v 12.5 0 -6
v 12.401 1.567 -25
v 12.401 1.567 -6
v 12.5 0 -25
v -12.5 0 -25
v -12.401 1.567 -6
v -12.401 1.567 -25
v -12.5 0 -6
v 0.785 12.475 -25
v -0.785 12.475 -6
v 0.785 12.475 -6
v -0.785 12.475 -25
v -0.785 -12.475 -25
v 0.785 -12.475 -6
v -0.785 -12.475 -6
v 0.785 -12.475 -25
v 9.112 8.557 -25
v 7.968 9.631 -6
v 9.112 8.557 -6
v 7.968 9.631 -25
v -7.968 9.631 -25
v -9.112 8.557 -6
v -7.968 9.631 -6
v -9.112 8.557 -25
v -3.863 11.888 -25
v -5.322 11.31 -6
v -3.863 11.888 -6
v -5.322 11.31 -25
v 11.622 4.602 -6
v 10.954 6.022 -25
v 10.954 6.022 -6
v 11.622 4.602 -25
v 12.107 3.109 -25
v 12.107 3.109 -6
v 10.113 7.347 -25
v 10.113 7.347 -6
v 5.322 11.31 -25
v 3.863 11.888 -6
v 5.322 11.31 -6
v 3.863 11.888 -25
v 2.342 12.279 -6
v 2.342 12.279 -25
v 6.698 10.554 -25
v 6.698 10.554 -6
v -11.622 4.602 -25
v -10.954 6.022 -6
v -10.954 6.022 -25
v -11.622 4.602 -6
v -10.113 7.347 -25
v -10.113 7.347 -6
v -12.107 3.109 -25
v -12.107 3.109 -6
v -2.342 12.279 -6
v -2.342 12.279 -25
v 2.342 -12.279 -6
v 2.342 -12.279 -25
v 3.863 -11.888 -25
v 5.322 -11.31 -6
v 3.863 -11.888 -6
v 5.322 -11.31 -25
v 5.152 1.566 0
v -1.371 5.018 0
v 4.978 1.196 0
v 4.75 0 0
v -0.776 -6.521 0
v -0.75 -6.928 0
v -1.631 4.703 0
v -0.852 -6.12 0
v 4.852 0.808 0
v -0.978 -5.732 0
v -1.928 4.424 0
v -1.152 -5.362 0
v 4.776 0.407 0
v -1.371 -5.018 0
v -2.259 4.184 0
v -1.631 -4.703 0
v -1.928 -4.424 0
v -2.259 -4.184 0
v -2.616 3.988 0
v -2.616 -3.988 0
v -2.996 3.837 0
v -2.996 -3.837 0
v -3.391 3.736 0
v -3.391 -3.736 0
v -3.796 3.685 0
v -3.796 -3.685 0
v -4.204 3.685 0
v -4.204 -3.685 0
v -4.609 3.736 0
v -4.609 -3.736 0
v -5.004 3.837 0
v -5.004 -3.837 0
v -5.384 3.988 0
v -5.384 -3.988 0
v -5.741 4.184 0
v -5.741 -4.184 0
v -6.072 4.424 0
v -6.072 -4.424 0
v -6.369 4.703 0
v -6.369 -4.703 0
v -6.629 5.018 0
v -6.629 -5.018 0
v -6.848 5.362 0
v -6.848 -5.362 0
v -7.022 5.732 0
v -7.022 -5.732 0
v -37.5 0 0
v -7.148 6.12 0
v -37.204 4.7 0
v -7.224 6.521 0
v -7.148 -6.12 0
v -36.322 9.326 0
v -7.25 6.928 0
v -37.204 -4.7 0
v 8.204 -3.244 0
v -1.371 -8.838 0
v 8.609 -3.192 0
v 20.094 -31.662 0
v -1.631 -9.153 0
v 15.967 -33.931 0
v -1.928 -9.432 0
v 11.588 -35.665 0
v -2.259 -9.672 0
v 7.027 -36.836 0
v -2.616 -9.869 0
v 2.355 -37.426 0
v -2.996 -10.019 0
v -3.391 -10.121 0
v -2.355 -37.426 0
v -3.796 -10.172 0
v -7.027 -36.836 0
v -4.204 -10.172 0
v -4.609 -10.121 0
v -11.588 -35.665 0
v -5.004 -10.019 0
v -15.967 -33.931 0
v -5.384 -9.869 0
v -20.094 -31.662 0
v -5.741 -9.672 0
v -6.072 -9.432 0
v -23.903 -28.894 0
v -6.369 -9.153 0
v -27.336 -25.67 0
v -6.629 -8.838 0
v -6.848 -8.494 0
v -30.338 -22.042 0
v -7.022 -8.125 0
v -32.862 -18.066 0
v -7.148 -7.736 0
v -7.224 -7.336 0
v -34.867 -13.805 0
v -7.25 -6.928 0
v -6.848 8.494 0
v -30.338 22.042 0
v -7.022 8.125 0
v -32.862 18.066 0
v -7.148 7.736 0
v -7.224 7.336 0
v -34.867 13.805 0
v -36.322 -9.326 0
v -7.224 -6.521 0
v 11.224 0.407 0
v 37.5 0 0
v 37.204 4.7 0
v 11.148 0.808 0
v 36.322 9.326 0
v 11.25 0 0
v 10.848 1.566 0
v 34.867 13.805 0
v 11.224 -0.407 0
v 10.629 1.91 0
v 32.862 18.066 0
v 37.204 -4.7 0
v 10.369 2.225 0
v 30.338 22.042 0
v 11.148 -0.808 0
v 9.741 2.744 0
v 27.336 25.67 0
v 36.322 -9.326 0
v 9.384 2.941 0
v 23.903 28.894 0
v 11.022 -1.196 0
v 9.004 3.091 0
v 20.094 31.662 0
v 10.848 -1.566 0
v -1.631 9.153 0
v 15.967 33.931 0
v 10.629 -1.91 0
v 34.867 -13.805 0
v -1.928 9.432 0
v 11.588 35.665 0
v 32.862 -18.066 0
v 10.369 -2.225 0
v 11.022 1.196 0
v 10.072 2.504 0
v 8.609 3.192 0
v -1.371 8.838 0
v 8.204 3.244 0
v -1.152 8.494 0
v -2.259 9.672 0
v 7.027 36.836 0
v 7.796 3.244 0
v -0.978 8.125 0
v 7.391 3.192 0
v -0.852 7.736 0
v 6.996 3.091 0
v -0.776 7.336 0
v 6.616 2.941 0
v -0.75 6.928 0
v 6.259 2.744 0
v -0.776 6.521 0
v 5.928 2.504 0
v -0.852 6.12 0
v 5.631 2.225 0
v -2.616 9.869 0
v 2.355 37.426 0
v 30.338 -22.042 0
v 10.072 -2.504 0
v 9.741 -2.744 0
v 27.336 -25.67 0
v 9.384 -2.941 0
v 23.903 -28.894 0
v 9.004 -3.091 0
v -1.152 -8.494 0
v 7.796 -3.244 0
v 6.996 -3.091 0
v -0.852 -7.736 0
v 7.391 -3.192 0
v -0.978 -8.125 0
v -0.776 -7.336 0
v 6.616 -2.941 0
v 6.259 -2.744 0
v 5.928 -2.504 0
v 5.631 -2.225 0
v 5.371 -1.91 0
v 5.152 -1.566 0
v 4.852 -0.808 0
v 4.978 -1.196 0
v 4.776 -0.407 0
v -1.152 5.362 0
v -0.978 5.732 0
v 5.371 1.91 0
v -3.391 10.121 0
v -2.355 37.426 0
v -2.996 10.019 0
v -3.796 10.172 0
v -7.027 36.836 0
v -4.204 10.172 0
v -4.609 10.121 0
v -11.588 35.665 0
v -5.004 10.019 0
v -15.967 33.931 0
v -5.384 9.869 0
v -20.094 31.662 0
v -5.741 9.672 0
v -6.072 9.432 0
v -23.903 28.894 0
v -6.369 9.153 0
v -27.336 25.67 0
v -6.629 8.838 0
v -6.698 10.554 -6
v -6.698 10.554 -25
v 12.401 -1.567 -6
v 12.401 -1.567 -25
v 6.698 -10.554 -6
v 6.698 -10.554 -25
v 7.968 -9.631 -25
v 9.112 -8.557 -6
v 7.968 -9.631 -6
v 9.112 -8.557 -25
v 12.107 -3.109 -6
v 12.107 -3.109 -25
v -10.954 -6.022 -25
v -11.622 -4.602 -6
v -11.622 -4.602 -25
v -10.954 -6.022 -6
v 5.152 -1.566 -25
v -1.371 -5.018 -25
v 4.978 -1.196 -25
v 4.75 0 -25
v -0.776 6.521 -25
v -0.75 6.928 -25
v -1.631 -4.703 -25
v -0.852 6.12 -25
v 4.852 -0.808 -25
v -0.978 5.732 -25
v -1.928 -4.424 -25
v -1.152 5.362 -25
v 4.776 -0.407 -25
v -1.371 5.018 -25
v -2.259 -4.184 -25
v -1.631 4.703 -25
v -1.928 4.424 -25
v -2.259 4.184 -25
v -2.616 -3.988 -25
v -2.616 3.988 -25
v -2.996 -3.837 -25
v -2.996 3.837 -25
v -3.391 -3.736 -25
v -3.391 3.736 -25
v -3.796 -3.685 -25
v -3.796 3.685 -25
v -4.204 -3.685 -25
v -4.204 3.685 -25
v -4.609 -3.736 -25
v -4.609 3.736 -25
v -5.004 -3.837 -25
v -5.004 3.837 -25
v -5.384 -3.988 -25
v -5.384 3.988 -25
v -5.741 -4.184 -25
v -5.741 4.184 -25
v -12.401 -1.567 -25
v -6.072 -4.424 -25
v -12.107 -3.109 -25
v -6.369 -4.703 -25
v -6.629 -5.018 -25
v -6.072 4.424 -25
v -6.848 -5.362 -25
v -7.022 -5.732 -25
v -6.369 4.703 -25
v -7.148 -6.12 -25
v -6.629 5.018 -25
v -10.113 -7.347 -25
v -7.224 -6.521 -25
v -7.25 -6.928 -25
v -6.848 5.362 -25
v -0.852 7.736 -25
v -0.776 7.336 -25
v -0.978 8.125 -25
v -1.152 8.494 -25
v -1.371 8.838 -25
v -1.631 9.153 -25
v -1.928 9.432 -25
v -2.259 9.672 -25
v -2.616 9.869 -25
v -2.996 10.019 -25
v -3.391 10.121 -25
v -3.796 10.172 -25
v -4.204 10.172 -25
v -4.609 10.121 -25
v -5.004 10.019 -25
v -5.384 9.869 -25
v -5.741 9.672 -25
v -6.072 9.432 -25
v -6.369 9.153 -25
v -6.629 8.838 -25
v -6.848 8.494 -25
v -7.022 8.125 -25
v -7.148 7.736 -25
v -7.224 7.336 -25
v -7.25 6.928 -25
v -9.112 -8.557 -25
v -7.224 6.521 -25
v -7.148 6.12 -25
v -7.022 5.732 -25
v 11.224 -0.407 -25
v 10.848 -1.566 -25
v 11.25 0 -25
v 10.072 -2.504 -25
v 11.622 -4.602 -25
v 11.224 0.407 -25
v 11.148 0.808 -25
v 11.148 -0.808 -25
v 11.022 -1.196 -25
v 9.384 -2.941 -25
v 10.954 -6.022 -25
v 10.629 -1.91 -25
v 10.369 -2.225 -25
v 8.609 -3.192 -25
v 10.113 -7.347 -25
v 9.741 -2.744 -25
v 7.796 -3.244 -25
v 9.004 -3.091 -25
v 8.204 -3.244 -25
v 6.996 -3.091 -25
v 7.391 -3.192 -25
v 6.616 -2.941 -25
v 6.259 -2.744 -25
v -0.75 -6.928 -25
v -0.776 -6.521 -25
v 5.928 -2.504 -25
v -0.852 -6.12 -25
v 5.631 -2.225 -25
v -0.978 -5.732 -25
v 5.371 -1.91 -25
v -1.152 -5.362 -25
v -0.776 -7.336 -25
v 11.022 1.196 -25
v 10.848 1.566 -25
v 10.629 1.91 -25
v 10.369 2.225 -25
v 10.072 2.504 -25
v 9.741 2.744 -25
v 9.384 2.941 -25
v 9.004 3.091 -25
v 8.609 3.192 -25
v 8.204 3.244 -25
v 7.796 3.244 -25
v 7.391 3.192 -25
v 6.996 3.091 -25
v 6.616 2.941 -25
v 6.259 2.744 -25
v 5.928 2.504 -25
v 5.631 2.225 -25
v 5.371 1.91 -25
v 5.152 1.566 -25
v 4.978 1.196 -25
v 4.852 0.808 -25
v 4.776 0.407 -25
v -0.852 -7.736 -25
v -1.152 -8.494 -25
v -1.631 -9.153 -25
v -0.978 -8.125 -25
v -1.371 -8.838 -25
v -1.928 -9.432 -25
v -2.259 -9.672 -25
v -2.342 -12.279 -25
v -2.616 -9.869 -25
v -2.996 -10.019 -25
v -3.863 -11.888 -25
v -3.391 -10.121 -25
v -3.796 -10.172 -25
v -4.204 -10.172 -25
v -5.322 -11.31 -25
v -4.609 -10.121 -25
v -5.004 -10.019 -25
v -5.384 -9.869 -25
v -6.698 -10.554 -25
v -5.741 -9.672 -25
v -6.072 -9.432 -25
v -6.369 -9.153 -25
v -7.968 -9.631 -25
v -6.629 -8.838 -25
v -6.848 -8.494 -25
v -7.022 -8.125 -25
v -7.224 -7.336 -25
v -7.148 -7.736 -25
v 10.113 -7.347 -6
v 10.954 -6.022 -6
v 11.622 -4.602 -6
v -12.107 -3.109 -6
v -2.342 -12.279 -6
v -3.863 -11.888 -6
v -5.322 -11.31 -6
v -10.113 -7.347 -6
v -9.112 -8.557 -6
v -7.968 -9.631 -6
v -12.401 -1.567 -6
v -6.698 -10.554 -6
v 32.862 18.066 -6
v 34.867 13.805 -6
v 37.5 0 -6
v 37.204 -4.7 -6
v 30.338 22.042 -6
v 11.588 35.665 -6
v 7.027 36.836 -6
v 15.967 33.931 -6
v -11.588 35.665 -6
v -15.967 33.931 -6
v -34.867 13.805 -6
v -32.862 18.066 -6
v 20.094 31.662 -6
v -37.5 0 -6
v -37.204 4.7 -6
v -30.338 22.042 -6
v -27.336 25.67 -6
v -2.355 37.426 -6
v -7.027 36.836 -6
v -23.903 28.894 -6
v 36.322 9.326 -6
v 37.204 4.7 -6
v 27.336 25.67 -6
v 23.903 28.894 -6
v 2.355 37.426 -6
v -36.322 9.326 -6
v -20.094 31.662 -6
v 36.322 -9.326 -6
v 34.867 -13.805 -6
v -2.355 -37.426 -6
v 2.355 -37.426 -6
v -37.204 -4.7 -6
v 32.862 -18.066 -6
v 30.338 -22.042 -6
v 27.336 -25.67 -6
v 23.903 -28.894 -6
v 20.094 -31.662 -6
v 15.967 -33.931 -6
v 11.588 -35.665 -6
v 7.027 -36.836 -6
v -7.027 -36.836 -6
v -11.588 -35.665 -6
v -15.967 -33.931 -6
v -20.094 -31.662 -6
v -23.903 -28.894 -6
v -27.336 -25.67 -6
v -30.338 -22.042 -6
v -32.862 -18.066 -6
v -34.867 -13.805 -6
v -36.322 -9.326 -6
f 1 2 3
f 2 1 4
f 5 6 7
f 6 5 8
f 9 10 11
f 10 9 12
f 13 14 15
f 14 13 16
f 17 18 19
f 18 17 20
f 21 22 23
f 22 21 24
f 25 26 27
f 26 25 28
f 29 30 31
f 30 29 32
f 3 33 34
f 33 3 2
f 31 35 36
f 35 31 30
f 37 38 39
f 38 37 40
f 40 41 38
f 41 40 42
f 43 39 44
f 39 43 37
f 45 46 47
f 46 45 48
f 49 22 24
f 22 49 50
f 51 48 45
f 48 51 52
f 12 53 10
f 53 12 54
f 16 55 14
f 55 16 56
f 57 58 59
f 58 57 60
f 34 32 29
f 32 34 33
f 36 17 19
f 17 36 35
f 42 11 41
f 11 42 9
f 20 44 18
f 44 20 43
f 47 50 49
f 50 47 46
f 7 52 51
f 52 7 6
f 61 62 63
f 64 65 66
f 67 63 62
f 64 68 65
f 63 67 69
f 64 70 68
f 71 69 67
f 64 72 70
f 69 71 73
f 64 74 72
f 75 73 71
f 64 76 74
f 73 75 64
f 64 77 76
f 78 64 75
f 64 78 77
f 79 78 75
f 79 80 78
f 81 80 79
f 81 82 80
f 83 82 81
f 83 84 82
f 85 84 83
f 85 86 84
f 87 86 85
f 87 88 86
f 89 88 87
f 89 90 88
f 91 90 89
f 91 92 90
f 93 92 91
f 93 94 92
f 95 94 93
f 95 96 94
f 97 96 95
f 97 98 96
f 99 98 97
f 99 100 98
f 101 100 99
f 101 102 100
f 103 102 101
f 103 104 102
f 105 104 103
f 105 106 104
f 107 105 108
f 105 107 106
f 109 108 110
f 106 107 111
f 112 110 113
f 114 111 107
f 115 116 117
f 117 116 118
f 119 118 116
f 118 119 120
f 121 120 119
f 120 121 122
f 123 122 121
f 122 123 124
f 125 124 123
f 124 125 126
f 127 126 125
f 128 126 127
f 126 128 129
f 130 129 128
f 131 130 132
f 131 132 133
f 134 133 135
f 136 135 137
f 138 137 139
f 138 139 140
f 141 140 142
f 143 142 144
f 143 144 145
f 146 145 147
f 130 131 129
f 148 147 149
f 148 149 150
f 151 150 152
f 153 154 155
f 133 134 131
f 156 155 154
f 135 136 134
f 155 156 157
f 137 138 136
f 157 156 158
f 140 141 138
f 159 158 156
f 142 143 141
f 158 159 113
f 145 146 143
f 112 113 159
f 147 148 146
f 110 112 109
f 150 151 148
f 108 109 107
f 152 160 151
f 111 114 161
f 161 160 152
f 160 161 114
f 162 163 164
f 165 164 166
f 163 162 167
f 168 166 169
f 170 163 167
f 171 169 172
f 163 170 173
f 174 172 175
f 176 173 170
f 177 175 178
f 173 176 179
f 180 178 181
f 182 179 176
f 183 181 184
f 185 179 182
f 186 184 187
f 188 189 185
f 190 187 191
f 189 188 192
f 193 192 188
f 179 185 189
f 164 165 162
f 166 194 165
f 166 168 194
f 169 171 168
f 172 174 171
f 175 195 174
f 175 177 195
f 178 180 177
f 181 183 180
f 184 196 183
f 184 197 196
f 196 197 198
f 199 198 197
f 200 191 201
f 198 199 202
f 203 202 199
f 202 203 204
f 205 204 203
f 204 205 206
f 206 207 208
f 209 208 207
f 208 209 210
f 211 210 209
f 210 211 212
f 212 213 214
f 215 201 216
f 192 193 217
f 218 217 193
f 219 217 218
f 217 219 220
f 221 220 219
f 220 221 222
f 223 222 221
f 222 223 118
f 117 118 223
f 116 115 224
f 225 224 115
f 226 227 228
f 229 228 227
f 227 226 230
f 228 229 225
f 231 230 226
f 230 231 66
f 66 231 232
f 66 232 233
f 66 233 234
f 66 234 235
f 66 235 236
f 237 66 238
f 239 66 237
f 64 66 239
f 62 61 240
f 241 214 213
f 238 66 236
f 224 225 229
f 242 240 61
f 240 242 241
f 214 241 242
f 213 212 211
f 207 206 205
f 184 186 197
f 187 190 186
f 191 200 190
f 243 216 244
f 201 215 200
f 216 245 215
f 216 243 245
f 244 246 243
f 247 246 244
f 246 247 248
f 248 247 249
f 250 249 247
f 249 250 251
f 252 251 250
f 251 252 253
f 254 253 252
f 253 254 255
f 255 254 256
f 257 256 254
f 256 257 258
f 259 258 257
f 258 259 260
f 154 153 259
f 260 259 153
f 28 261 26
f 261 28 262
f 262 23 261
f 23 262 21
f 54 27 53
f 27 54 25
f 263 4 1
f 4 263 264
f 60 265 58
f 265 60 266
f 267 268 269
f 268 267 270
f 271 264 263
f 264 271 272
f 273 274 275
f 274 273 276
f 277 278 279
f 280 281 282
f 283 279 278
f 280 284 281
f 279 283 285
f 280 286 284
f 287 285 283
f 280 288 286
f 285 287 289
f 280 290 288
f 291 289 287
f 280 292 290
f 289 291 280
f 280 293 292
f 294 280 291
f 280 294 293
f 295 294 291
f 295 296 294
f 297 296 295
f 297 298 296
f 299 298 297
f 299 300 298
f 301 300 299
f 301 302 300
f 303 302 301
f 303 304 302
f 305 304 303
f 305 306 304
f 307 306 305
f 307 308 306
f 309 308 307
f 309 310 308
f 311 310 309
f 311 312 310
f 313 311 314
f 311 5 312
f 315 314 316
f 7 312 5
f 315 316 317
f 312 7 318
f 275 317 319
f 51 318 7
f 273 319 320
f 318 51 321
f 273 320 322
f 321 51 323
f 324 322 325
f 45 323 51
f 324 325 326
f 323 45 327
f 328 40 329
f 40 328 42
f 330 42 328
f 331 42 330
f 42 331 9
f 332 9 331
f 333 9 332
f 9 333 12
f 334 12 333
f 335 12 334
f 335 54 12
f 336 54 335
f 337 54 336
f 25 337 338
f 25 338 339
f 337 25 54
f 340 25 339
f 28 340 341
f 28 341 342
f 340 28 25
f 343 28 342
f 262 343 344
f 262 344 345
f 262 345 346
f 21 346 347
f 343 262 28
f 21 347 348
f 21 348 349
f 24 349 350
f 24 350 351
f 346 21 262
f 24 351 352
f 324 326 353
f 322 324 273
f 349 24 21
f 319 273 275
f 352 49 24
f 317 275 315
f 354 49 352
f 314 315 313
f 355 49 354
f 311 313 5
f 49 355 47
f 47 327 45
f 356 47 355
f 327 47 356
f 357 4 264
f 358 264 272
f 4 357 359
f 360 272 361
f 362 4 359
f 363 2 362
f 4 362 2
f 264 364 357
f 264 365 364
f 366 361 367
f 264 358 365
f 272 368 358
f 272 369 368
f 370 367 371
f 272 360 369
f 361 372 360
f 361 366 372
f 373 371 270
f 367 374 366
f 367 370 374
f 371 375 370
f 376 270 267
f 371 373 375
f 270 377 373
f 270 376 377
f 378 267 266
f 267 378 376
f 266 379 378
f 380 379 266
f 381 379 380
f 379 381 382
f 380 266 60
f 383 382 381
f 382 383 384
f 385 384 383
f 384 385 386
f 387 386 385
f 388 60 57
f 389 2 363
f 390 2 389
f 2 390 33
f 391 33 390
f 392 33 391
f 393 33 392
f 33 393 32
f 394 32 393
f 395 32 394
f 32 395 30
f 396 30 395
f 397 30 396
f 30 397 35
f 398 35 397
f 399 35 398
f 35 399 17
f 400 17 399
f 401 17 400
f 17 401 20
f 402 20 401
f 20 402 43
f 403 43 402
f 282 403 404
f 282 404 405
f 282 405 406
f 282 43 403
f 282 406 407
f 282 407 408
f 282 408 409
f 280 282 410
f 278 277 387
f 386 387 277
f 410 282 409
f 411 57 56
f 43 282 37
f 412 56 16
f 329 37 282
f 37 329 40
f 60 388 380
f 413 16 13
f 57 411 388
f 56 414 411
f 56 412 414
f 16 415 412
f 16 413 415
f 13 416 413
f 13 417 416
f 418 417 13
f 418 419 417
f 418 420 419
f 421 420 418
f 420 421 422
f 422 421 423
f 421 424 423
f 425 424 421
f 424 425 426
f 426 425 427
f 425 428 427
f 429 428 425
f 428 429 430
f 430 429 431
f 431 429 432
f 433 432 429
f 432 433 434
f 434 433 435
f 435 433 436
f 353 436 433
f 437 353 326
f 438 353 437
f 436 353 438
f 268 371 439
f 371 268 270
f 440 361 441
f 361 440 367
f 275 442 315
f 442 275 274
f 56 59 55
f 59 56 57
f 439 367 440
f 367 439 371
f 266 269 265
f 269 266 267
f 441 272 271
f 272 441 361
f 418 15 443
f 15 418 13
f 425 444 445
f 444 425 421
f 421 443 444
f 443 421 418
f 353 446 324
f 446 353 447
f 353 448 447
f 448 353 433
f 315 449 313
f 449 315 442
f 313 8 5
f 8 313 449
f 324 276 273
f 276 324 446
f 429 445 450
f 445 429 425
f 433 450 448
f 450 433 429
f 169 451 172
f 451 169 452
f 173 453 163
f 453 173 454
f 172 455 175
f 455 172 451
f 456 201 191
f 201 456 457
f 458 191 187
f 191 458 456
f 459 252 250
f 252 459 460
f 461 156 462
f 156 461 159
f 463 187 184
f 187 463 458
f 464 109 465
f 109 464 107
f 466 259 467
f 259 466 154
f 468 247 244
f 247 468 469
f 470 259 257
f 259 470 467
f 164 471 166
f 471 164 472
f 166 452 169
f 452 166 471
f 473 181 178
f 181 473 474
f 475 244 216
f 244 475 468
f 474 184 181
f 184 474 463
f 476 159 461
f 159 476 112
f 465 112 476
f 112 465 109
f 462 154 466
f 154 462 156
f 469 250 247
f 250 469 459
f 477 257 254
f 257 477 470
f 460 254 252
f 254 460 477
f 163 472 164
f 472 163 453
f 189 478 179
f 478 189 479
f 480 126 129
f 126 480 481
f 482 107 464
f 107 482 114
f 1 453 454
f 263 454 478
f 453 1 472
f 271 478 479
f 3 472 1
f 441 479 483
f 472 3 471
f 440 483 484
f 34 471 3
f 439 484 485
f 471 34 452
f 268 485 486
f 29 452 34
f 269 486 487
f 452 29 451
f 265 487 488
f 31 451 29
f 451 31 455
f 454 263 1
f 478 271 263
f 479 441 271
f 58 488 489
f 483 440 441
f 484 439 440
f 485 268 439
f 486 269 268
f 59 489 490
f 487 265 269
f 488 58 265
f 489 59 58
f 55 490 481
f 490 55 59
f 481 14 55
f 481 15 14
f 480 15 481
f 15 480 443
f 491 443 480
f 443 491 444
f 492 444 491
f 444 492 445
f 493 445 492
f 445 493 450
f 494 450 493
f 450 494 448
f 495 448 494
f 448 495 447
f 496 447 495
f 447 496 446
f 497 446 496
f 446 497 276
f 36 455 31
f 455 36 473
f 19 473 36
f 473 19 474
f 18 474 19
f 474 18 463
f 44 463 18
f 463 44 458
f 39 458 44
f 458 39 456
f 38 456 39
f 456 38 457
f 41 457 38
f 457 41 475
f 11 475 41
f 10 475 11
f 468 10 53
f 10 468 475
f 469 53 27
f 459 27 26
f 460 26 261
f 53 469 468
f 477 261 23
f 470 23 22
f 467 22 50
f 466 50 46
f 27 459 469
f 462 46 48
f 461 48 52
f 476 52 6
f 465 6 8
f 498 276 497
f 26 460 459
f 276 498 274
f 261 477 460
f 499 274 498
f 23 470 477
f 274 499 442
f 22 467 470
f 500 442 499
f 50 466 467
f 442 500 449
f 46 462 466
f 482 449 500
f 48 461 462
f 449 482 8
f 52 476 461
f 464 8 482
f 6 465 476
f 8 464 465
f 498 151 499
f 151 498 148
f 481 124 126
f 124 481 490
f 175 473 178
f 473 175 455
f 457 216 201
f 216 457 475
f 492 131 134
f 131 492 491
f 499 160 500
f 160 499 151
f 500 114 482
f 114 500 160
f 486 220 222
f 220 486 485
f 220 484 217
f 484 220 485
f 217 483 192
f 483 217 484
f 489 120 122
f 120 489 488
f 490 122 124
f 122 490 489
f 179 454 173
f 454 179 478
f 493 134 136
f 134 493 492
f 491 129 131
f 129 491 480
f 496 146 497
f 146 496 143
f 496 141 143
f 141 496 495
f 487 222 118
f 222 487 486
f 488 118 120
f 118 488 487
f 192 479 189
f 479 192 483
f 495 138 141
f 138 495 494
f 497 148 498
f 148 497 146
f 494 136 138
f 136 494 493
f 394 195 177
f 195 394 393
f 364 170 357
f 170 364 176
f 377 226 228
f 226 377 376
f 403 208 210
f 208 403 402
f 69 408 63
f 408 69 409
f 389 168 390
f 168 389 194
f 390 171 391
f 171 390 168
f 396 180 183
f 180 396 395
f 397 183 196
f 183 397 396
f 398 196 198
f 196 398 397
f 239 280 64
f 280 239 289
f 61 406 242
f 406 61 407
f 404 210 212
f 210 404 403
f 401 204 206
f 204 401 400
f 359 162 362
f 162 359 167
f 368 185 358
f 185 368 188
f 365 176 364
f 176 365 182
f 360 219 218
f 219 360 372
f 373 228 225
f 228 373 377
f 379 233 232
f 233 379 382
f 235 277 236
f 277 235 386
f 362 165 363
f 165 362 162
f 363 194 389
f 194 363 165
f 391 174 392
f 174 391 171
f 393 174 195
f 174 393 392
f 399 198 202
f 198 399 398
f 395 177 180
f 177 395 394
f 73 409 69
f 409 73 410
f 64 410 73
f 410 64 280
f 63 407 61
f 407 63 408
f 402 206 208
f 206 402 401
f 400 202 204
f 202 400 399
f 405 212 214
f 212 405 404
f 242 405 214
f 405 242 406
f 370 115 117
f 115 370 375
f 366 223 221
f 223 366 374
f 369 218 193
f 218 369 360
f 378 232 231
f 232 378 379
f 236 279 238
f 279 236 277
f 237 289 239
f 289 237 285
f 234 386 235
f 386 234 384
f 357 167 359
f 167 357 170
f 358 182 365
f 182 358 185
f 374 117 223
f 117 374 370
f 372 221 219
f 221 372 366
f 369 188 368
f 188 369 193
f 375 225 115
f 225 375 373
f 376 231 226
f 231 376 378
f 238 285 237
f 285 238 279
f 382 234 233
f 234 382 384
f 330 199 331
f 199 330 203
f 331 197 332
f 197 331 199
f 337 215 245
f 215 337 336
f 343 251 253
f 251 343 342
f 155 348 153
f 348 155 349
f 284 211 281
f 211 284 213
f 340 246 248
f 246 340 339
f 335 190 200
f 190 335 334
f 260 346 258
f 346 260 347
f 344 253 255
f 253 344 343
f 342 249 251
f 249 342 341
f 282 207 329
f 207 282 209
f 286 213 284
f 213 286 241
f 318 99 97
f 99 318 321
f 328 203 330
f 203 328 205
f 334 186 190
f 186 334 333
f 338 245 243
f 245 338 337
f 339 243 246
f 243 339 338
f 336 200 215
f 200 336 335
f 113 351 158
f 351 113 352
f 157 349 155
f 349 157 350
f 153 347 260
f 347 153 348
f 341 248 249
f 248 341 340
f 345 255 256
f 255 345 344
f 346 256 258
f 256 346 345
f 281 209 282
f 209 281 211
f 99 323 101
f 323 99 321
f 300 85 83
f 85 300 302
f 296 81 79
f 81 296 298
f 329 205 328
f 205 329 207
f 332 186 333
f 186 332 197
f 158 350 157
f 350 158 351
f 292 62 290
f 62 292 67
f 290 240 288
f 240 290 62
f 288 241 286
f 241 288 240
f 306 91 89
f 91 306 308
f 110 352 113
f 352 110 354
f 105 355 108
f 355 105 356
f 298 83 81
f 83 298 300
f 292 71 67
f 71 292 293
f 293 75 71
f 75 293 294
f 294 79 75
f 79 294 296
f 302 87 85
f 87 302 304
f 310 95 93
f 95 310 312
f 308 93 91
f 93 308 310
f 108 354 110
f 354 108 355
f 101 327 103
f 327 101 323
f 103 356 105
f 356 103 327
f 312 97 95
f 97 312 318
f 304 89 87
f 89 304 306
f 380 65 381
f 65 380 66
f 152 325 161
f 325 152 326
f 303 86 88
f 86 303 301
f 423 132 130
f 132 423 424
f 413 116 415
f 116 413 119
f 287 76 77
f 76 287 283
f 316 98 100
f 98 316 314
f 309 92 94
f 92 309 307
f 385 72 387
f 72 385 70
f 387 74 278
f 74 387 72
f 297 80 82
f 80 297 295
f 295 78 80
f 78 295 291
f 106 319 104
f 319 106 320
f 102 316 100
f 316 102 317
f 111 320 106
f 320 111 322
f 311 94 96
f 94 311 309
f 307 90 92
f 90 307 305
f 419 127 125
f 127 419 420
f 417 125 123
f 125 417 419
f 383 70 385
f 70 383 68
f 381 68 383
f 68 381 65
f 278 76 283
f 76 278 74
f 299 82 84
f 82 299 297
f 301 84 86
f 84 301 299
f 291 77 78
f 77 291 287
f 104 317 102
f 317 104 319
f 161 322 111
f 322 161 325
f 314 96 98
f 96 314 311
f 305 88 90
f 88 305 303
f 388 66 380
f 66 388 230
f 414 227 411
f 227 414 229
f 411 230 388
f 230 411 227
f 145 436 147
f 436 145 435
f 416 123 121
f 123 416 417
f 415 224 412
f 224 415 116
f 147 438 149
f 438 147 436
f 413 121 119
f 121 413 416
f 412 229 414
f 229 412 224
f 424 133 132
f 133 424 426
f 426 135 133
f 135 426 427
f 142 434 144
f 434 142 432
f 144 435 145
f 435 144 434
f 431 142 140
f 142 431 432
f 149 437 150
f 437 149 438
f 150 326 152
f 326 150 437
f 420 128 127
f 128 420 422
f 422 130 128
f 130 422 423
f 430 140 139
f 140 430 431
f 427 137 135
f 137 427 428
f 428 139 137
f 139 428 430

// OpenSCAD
$fn = 50;


difference() {
	union() {
		translate(v = [0, 0, -25.0000000000]) {
			cylinder(h = 25, r = 12.5000000000);
		}
		translate(v = [0, 0, -6.0000000000]) {
			cylinder(h = 6, r = 37.5000000000);
		}
	}
	union() {
		#translate(v = [8.0000000000, 0.0000000000, -25]) {
			cylinder(h = 25, r = 3.2500000000);
		}
		#translate(v = [-4.0000000000, 6.9282032303, -25]) {
			cylinder(h = 25, r = 3.2500000000);
		}
		#translate(v = [-4.0000000000, -6.9282032303, -25]) {
			cylinder(h = 25, r = 3.2500000000);
		}
	}
}
